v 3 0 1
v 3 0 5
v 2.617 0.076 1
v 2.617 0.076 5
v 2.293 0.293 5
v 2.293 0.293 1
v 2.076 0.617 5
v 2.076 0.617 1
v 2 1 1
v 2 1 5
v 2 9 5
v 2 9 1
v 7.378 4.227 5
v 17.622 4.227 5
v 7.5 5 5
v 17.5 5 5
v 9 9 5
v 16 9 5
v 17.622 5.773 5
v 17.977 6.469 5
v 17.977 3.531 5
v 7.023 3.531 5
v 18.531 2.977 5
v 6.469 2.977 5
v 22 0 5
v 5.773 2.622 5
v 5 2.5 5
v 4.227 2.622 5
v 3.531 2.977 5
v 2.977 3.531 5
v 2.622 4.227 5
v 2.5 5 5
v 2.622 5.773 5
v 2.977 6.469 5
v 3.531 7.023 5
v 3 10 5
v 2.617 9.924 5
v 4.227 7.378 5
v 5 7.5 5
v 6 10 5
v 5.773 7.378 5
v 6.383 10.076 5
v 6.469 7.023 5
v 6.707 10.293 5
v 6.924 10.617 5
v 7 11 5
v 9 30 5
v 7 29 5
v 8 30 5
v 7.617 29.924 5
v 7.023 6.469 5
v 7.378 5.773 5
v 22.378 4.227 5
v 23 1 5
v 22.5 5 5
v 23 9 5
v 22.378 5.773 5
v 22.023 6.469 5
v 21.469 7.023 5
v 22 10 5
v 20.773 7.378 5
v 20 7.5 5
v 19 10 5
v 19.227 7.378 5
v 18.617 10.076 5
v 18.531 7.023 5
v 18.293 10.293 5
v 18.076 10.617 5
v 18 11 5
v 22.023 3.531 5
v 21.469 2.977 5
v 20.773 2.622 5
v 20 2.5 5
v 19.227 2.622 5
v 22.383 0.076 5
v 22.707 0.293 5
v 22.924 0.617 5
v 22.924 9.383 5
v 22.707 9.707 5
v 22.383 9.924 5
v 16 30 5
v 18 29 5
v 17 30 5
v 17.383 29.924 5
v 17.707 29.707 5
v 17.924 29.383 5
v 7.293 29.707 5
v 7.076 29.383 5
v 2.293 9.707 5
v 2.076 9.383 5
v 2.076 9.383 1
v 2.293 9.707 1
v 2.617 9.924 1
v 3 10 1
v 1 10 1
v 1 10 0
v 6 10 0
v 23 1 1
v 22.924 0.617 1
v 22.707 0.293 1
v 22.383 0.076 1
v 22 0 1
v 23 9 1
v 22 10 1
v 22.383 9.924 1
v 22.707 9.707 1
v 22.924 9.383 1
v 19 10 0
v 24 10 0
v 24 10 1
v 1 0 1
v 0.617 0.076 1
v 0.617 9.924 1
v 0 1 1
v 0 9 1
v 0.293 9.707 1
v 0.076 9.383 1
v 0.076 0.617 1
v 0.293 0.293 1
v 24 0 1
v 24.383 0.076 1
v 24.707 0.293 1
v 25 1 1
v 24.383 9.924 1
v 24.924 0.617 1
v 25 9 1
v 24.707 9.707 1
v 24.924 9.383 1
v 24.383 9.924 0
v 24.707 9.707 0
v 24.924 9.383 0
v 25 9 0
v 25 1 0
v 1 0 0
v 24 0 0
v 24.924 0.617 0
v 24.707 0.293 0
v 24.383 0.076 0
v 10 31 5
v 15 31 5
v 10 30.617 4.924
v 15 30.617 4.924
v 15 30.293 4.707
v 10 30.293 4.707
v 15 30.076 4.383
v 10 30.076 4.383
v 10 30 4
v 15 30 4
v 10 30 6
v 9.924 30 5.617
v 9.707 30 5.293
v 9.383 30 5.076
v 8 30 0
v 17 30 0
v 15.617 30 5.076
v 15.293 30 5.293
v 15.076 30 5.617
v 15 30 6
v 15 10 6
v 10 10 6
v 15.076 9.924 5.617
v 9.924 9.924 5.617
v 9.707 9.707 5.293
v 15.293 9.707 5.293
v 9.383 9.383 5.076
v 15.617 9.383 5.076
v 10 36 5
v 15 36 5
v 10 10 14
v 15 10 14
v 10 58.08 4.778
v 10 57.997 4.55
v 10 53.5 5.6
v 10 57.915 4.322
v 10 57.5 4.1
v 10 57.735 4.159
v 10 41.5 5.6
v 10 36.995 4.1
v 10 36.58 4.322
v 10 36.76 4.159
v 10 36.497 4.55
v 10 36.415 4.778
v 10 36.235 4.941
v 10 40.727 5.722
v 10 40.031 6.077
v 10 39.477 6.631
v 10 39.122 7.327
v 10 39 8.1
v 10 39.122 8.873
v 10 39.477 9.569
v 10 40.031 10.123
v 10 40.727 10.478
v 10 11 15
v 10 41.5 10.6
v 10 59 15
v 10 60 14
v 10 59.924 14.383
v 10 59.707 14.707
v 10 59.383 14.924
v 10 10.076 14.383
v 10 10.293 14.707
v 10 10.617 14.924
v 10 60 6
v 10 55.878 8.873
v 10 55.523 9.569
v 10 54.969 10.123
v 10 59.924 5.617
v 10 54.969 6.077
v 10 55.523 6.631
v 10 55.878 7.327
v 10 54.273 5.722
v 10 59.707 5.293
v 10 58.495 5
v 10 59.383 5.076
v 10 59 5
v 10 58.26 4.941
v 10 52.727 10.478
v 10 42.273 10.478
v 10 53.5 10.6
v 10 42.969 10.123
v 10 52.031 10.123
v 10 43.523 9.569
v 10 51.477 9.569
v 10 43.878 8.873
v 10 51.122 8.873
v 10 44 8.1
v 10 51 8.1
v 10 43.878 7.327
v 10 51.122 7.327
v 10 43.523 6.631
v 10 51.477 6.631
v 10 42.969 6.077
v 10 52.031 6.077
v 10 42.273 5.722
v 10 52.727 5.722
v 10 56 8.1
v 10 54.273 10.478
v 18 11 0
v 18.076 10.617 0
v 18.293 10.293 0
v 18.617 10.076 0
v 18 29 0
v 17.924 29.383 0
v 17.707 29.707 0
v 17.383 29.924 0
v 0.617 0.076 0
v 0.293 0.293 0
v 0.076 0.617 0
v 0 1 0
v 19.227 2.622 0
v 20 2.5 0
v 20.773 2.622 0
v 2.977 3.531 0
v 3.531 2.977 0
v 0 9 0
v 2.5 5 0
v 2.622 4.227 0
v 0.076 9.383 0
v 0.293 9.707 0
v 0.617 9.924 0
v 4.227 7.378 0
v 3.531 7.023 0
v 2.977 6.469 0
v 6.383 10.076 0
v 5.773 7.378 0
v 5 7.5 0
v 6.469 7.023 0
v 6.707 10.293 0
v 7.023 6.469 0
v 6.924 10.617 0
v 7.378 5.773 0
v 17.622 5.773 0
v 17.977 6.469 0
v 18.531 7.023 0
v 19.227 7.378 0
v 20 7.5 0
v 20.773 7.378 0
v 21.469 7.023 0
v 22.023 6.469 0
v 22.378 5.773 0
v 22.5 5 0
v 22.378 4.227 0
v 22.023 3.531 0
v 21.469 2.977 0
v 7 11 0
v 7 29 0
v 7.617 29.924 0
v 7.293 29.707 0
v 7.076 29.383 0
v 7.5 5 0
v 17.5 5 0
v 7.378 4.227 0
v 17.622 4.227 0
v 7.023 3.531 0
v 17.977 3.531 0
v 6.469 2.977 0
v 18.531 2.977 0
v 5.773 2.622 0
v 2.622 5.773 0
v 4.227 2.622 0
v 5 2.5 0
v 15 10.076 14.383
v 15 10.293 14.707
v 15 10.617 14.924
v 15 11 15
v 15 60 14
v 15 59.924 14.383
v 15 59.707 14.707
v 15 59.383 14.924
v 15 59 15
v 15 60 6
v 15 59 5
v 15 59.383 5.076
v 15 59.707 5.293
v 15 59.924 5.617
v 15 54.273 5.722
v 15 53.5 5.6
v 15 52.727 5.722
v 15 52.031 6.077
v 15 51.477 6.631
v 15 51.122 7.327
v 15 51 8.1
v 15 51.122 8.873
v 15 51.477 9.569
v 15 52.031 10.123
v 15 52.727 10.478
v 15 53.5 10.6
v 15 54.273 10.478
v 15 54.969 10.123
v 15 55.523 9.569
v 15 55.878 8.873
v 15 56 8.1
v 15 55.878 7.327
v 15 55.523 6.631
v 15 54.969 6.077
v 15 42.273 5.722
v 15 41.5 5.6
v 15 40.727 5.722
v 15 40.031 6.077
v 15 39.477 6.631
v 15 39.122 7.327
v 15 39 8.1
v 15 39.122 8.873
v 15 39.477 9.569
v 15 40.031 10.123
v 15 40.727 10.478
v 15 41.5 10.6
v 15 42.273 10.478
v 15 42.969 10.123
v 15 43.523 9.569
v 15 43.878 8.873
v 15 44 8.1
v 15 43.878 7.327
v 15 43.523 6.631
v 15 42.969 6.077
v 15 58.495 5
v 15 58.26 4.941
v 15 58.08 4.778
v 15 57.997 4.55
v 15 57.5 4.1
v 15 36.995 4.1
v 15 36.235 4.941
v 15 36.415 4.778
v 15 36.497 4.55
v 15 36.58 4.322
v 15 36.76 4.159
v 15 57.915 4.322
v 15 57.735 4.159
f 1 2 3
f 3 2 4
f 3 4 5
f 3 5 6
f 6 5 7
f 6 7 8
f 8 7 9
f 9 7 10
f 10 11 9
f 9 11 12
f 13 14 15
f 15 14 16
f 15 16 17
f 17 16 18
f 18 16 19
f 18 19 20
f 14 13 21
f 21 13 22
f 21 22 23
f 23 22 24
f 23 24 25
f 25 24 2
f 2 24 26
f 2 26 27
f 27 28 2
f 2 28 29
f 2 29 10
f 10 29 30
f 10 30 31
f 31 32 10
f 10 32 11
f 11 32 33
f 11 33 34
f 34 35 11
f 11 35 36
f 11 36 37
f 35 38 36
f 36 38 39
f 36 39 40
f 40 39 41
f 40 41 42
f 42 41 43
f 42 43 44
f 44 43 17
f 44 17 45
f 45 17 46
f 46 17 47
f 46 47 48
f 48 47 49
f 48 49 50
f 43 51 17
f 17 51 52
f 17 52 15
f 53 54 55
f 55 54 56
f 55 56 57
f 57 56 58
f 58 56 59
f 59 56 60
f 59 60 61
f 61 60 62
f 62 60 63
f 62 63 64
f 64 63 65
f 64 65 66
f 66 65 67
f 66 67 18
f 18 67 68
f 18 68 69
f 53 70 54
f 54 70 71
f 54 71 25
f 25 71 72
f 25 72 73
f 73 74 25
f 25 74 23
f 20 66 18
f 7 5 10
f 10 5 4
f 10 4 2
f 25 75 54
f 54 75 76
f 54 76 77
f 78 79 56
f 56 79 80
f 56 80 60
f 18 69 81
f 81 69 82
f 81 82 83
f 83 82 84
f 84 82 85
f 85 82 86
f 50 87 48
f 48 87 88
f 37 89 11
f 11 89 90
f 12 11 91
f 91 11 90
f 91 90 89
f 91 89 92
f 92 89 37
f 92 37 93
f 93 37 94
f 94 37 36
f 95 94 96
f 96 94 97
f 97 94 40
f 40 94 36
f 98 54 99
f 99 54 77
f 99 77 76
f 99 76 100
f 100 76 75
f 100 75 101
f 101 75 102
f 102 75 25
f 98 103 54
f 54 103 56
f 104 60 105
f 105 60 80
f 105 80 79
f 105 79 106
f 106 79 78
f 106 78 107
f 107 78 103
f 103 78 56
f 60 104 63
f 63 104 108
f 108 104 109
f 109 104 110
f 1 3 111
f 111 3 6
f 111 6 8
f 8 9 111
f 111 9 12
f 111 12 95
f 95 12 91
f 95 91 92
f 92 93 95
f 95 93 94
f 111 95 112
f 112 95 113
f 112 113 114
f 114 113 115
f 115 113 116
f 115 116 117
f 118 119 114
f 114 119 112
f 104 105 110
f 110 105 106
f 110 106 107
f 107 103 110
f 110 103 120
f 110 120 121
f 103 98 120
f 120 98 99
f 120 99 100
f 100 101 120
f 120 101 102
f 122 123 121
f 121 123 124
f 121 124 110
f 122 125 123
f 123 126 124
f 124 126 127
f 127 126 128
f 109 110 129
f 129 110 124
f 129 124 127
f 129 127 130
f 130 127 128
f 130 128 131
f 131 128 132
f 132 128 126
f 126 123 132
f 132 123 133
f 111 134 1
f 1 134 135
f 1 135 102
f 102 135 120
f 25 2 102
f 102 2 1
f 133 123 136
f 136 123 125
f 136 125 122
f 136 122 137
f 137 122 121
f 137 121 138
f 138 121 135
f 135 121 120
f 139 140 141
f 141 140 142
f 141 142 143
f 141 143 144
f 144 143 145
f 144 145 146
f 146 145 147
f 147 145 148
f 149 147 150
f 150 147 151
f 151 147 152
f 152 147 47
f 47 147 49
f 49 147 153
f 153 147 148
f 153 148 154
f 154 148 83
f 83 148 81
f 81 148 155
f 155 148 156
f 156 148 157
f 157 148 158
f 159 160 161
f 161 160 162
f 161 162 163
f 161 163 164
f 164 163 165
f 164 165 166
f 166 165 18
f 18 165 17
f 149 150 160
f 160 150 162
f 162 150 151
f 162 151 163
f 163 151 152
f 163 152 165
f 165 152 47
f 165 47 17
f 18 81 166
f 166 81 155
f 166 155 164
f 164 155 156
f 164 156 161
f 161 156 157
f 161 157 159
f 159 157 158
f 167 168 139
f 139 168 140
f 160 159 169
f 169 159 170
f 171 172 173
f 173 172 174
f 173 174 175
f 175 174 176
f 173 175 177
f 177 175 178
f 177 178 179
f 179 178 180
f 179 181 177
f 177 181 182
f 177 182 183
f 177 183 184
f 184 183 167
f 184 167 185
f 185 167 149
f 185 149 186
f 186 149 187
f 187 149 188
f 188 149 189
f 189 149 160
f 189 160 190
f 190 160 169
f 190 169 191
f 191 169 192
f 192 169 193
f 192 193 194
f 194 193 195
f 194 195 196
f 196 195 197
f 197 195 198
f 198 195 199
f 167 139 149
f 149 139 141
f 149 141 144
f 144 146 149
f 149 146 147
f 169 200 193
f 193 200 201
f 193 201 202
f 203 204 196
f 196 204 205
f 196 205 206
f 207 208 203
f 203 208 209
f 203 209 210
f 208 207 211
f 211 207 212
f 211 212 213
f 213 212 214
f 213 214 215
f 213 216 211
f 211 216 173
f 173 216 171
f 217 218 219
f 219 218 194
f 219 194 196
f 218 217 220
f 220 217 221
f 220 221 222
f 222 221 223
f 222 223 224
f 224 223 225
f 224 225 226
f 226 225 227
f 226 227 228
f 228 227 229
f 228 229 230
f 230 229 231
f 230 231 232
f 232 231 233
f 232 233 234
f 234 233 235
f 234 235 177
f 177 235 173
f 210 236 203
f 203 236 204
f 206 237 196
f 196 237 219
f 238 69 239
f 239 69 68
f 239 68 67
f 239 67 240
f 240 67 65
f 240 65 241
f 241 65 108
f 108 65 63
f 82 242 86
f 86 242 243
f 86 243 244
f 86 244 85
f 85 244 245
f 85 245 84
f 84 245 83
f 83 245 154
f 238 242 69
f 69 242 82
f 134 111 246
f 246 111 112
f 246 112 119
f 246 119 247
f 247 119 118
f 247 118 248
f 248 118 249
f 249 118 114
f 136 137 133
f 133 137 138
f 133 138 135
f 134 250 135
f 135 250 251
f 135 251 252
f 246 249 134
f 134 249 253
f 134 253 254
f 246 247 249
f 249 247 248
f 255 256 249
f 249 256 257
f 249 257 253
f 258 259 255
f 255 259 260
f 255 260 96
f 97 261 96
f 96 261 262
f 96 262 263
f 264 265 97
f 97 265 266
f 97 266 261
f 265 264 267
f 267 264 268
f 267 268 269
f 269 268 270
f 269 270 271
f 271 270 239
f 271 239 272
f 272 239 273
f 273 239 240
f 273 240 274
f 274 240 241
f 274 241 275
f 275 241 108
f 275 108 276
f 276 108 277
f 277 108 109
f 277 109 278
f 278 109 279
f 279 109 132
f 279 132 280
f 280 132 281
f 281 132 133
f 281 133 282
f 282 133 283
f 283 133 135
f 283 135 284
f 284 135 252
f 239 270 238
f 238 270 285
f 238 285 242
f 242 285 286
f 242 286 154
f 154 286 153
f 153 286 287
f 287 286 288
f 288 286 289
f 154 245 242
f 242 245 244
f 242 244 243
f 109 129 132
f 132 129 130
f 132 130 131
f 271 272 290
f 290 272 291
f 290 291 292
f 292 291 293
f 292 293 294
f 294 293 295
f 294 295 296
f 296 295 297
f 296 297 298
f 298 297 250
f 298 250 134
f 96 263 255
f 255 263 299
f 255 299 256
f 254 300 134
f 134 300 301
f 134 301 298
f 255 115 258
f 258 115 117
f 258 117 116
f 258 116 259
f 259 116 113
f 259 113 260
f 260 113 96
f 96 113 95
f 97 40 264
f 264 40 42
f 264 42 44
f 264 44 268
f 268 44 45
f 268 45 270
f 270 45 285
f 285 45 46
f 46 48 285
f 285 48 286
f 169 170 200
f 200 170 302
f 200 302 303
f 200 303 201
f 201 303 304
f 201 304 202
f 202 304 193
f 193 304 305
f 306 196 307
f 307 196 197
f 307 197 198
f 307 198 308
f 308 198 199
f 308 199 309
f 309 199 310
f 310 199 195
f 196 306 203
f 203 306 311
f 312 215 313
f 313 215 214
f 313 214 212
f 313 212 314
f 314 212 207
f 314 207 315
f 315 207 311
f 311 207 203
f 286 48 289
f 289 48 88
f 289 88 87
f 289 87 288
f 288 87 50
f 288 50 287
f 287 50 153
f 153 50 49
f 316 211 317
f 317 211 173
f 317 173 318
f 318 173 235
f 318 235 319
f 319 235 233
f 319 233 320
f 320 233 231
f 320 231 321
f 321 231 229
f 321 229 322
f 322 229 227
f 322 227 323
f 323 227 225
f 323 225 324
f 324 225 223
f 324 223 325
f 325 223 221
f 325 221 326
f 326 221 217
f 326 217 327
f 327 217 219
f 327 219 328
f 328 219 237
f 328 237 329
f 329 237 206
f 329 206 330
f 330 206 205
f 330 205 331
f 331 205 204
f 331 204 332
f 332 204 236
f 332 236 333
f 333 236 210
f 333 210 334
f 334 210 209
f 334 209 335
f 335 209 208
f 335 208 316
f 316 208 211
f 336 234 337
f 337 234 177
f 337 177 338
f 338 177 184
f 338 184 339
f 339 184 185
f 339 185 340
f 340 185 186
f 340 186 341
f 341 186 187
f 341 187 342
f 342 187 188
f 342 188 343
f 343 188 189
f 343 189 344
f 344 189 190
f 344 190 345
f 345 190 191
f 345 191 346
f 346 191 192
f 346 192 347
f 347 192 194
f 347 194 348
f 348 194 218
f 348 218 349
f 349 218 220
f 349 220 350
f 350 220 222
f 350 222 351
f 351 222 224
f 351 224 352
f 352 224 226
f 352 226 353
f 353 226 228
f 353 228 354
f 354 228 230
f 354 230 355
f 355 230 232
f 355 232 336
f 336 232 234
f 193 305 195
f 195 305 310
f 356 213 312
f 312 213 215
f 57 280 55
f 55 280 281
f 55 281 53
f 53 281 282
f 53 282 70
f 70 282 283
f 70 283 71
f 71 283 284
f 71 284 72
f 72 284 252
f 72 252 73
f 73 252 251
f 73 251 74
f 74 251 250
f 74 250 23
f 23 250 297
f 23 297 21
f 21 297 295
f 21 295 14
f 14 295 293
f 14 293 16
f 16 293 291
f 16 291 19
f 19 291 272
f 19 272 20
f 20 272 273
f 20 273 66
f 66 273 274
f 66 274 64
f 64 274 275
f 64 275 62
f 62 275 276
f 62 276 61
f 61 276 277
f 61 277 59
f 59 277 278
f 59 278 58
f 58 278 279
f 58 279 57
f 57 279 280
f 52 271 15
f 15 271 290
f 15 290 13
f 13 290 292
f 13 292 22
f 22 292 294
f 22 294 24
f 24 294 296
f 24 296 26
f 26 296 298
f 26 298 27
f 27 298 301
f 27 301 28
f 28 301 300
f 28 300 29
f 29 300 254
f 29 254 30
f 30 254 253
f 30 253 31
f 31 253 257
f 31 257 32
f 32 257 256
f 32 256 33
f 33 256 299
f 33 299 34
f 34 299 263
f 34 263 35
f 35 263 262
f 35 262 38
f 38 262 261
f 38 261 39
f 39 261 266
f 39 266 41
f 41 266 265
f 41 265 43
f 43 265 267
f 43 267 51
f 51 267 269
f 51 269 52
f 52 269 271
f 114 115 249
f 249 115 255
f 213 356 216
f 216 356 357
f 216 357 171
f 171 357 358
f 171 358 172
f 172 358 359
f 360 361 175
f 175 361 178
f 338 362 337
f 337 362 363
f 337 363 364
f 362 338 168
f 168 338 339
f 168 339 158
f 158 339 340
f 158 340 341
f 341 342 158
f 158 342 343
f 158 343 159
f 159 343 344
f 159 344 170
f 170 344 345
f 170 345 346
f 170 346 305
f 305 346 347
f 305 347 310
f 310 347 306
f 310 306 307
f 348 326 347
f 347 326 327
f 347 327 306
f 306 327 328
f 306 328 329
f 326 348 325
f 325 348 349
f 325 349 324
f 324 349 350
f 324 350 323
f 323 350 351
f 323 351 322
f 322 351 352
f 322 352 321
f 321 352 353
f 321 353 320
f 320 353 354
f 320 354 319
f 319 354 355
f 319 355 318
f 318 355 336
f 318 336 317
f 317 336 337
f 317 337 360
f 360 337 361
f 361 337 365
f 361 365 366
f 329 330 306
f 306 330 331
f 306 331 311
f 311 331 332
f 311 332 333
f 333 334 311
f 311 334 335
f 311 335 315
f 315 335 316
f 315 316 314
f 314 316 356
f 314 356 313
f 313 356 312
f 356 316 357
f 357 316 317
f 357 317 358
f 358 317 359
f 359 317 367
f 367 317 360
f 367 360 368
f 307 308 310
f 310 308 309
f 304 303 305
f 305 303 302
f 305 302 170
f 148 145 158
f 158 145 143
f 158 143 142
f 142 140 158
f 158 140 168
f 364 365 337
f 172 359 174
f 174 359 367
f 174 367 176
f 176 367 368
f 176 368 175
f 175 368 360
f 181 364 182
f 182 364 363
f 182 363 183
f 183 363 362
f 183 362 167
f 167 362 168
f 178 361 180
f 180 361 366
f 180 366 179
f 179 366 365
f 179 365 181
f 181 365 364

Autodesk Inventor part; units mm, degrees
ref_plane "YZ Plane" through (0, 0, 0) normal (1, 0, 0) x (0, 1, 0)
ref_plane "XZ Plane" through (0, 0, 0) normal (0, 1, 0) x (-1, 0, 0)
ref_plane "XY Plane" through (0, 0, 0) normal (0, 0, 1) x (1, 0, 0)
sketch "スケッチ6" plane through (0, 0, 0) normal (0, 0, 1) x (1, 0, 0)
  line L0 (0, 0) -> (25, 0)
  line L1 (25, 0) -> (25, 30)
  line L2 (25, 30) -> (0, 30)
  line L3 (0, 30) -> (0, 0)
  circle A0 centre (5, 5) radius 2.5
  circle A1 centre (20, 5) radius 2.5
  dimension "d39" = 5
  dimension "d40" = 5
  dimension "d41" = 5
  dimension "d42" = 5
  dimension "d43" = 15
  dimension "d44" = 5
  dimension "d45" = 5
  dimension "d46" = 30
extrude "押し出し4" add sketch "スケッチ6" along normal blind 5
sketch "スケッチ7" plane through (0, 0, 5) normal (0, 0, 1) x (1, 0, 0)
  line L0 (25, 30) -> (0, 30) projected
  line L1 (10, 30) -> (15, 30)
  line L2 (15, 30) -> (15, 10)
  line L3 (15, 10) -> (10, 10)
  line L4 (10, 10) -> (10, 30)
  line L5 (25, 0) -> (25, 30) projected
  line L6 (0, 30) -> (0, 0) projected
  line L7 (0, 0) -> (25, 0) projected
  line L8 (10, 30) -> (15, 30)
  line L9 (15, 30) -> (15, 60)
  line L10 (15, 60) -> (10, 60)
  line L11 (10, 60) -> (10, 30)
  dimension "d49" = 5
  dimension "d50" = 10
  dimension "d51" = 10
  dimension "d52" = 10
  dimension "d55" = 30
  dimension "d56" = 5
extrude "押し出し5" add sketch "スケッチ7" along normal blind 10 contours L2 L3 L4 L0 | L0 L11 L10 L9
sketch "スケッチ8" plane through (10, 30, 5) normal (-1, 0, 0) x (0, 0, 1)
  line L0 (10, 30) -> (10, -20) projected
  line L1 (0, 30) -> (10, 30) projected
  line L2 (0, -20) -> (10, -20) projected
  point P0 (-5, -30)
  point P1 (3.1, 11.5)
  point P2 (3.1, 23.5)
  dimension "d57" = 6.9
  dimension "d58" = 6.9
  dimension "d59" = 12
  dimension "d60" = 6.5
  dimension "d61" = 31.5
hole "穴3" at (10, 41.5, 8.1) at (10, 53.5, 8.1) direction (1, 0, 0) diameter 5 depth 8
sketch "スケッチ9" plane through (0, 0, 5) normal (0, 0, 1) x (1, 0, 0)
  line L0 (10, 30) -> (0, 30) projected
  line L1 (0, 30) -> (7, 30)
  line L2 (7, 30) -> (7, 10)
  line L3 (7, 10) -> (0, 10)
  line L4 (0, 10) -> (0, 30)
  line L5 (25, 0) -> (25, 30) projected
  line L6 (25, 30) -> (18, 30)
  line L7 (18, 30) -> (18, 10)
  line L8 (18, 10) -> (25, 10)
  line L9 (25, 10) -> (25, 30)
  point P0 (0, 0)
  point P1 (5, 30)
  point P2 (18, 20)
  point P3 (7, 20)
  dimension "d70" = 20
  dimension "d72" = 7
  dimension "d73" = 7
extrude "押し出し6" cut sketch "スケッチ9" against normal blind 10
fillet "フィレット4" radius 1 15 edges at (7, 30, 2.5) (12.5, 60, 5) (12.5, 60, 15) (12.5, 10, 15) (7, 10, 2.5) (0, 10, 2.5) (0, 0, 2.5) (18, 30, 2.5) (18, 10, 2.5) (25, 10, 2.5) (25, 0, 2.5) (10, 20, 5) (12.5, 30, 5) (15, 20, 5) (12.5, 10, 5)
sketch "スケッチ10" plane through (0, 0, 5) normal (0, 0, 1) x (1, 0, 0)
  line L0 (9, 30) -> (9, 9) projected
  line L1 (9, 30) -> (8, 30) projected
  arc A0 (8, 30) -> (7, 29) centre (8, 29) ccw projected
  line L2 (7, 29) -> (7, 11) projected
  arc A1 (6, 10) -> (7, 11) centre (6, 11) ccw projected
  line L3 (6, 10) -> (1, 10) projected
  arc A2 (1, 10) -> (0, 9) centre (1, 9) ccw projected
  line L4 (0, 9) -> (0, 1) projected
  arc A3 (0, 1) -> (1, 0) centre (1, 1) ccw projected
  line L5 (1, 0) -> (24, 0) projected
  arc A4 (24, 0) -> (25, 1) centre (24, 1) ccw projected
  line L6 (25, 1) -> (25, 9) projected
  arc A5 (25, 9) -> (24, 10) centre (24, 9) ccw projected
  line L7 (24, 10) -> (19, 10) projected
  arc A6 (18, 11) -> (19, 10) centre (19, 11) ccw projected
  line L8 (18, 11) -> (18, 29) projected
  arc A7 (18, 29) -> (17, 30) centre (17, 29) ccw projected
  line L9 (17, 30) -> (16, 30) projected
  line L10 (16, 9) -> (16, 30) projected
  line L11 (9, 9) -> (16, 9) projected
  circle A8 centre (5, 5) radius 2.5 projected
  circle A9 centre (20, 5) radius 2.5 projected
  line L12 (2, 8) -> (23, 8)
  line L13 (23, 8) -> (23, 2)
  line L14 (23, 2) -> (2, 2)
  line L15 (2, 2) -> (2, 8)
  line L16 (2, 10) -> (2, 0)
  line L17 (24, 10) -> (19, 10) projected
  line L18 (23, 10) -> (23, 0)
  point P0 (0, 0)
  point P1 (2, 2)
  point P2 (23, 2)
  dimension "d77" = 2
  dimension "d78" = 2
  dimension "d79" = 2
  dimension "d80" = 2
extrude "押し出し7" cut sketch "スケッチ10" against normal blind 4 contours L16 L15 L5 A3 L4 A2 L3 | L18 L7 A5 L6 A4 L5 L13
fillet "フィレット5" radius 1 4 edges at (23, 10, 3) (23, 0, 3) (2, 10, 3) (2, 0, 3)
sketch "スケッチ11" plane through (15, 31, 5) normal (1, 0, 0) x (0, 0, -1)
  line L0 (-7.1, 27) -> (2, 27)
  line L1 (2, 5.5) -> (-7.1, 5.5)
  line L2 (-7.1, 5.5) -> (-7.1, 27)
  line L3 (0, 0) -> (0, 28) projected
  circle A0 centre (-3.1, 22.5) radius 2.5 projected
  line L4 (-7.1, 27) -> (0.9, 27)
  line L5 (0.9, 27) -> (0.9, 5.5)
  line L6 (0.9, 5.5) -> (-7.1, 5.5)
  line L7 (-7.1, 5.5) -> (-7.1, 27)
  line L8 (-1, 29) -> (-9, 29) projected
  circle A1 centre (-3.1, 10.5) radius 2.5 projected
  point P0 (5, -31)
  point P1 (0.9, 27)
  point P2 (0, 27)
  point P3 (0, 5.5)
  dimension "d85" = 4
  dimension "d86" = 4
  dimension "d87" = 2
  dimension "d88" = 5
extrude "押し出し8" add sketch "スケッチ11" against normal blind 5 contours L0 L5 L1 L3
fillet "フィレット6" radius 0.5 4 edges at (12.5, 36.5, 5) (12.5, 36.5, 4.1) (12.5, 58, 4.1) (12.5, 58, 5)
equation "\"d42\" = d41"
equation "\"d45\" = d44"
equation "\"d58\" = d57"
equation "\"d73\" = d72"
equation "\"d86\" = d85"
properties part number "BP_BOX-Support-Bar-Connect1-40" material "ABS プラスチック"
